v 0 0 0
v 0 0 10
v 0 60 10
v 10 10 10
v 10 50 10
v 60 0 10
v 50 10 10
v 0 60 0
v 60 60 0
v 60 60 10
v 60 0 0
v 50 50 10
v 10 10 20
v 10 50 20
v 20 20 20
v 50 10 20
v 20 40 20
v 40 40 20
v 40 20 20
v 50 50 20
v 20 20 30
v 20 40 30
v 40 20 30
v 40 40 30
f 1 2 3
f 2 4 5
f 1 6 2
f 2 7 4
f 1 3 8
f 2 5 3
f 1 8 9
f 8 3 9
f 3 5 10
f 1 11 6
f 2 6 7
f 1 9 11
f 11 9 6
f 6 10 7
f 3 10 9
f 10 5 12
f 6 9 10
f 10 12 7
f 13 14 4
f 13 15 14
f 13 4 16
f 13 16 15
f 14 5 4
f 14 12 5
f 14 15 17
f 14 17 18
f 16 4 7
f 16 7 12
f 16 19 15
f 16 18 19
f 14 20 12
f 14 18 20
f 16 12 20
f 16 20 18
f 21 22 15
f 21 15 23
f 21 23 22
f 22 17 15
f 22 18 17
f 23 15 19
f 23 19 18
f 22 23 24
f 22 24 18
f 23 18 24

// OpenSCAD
cube([60, 60, 10], center = false);

translate([10, 10, 10])
    cube([40, 40, 10], center = false);

translate([20, 20, 20])
    cube([20, 20, 10], center = false);
